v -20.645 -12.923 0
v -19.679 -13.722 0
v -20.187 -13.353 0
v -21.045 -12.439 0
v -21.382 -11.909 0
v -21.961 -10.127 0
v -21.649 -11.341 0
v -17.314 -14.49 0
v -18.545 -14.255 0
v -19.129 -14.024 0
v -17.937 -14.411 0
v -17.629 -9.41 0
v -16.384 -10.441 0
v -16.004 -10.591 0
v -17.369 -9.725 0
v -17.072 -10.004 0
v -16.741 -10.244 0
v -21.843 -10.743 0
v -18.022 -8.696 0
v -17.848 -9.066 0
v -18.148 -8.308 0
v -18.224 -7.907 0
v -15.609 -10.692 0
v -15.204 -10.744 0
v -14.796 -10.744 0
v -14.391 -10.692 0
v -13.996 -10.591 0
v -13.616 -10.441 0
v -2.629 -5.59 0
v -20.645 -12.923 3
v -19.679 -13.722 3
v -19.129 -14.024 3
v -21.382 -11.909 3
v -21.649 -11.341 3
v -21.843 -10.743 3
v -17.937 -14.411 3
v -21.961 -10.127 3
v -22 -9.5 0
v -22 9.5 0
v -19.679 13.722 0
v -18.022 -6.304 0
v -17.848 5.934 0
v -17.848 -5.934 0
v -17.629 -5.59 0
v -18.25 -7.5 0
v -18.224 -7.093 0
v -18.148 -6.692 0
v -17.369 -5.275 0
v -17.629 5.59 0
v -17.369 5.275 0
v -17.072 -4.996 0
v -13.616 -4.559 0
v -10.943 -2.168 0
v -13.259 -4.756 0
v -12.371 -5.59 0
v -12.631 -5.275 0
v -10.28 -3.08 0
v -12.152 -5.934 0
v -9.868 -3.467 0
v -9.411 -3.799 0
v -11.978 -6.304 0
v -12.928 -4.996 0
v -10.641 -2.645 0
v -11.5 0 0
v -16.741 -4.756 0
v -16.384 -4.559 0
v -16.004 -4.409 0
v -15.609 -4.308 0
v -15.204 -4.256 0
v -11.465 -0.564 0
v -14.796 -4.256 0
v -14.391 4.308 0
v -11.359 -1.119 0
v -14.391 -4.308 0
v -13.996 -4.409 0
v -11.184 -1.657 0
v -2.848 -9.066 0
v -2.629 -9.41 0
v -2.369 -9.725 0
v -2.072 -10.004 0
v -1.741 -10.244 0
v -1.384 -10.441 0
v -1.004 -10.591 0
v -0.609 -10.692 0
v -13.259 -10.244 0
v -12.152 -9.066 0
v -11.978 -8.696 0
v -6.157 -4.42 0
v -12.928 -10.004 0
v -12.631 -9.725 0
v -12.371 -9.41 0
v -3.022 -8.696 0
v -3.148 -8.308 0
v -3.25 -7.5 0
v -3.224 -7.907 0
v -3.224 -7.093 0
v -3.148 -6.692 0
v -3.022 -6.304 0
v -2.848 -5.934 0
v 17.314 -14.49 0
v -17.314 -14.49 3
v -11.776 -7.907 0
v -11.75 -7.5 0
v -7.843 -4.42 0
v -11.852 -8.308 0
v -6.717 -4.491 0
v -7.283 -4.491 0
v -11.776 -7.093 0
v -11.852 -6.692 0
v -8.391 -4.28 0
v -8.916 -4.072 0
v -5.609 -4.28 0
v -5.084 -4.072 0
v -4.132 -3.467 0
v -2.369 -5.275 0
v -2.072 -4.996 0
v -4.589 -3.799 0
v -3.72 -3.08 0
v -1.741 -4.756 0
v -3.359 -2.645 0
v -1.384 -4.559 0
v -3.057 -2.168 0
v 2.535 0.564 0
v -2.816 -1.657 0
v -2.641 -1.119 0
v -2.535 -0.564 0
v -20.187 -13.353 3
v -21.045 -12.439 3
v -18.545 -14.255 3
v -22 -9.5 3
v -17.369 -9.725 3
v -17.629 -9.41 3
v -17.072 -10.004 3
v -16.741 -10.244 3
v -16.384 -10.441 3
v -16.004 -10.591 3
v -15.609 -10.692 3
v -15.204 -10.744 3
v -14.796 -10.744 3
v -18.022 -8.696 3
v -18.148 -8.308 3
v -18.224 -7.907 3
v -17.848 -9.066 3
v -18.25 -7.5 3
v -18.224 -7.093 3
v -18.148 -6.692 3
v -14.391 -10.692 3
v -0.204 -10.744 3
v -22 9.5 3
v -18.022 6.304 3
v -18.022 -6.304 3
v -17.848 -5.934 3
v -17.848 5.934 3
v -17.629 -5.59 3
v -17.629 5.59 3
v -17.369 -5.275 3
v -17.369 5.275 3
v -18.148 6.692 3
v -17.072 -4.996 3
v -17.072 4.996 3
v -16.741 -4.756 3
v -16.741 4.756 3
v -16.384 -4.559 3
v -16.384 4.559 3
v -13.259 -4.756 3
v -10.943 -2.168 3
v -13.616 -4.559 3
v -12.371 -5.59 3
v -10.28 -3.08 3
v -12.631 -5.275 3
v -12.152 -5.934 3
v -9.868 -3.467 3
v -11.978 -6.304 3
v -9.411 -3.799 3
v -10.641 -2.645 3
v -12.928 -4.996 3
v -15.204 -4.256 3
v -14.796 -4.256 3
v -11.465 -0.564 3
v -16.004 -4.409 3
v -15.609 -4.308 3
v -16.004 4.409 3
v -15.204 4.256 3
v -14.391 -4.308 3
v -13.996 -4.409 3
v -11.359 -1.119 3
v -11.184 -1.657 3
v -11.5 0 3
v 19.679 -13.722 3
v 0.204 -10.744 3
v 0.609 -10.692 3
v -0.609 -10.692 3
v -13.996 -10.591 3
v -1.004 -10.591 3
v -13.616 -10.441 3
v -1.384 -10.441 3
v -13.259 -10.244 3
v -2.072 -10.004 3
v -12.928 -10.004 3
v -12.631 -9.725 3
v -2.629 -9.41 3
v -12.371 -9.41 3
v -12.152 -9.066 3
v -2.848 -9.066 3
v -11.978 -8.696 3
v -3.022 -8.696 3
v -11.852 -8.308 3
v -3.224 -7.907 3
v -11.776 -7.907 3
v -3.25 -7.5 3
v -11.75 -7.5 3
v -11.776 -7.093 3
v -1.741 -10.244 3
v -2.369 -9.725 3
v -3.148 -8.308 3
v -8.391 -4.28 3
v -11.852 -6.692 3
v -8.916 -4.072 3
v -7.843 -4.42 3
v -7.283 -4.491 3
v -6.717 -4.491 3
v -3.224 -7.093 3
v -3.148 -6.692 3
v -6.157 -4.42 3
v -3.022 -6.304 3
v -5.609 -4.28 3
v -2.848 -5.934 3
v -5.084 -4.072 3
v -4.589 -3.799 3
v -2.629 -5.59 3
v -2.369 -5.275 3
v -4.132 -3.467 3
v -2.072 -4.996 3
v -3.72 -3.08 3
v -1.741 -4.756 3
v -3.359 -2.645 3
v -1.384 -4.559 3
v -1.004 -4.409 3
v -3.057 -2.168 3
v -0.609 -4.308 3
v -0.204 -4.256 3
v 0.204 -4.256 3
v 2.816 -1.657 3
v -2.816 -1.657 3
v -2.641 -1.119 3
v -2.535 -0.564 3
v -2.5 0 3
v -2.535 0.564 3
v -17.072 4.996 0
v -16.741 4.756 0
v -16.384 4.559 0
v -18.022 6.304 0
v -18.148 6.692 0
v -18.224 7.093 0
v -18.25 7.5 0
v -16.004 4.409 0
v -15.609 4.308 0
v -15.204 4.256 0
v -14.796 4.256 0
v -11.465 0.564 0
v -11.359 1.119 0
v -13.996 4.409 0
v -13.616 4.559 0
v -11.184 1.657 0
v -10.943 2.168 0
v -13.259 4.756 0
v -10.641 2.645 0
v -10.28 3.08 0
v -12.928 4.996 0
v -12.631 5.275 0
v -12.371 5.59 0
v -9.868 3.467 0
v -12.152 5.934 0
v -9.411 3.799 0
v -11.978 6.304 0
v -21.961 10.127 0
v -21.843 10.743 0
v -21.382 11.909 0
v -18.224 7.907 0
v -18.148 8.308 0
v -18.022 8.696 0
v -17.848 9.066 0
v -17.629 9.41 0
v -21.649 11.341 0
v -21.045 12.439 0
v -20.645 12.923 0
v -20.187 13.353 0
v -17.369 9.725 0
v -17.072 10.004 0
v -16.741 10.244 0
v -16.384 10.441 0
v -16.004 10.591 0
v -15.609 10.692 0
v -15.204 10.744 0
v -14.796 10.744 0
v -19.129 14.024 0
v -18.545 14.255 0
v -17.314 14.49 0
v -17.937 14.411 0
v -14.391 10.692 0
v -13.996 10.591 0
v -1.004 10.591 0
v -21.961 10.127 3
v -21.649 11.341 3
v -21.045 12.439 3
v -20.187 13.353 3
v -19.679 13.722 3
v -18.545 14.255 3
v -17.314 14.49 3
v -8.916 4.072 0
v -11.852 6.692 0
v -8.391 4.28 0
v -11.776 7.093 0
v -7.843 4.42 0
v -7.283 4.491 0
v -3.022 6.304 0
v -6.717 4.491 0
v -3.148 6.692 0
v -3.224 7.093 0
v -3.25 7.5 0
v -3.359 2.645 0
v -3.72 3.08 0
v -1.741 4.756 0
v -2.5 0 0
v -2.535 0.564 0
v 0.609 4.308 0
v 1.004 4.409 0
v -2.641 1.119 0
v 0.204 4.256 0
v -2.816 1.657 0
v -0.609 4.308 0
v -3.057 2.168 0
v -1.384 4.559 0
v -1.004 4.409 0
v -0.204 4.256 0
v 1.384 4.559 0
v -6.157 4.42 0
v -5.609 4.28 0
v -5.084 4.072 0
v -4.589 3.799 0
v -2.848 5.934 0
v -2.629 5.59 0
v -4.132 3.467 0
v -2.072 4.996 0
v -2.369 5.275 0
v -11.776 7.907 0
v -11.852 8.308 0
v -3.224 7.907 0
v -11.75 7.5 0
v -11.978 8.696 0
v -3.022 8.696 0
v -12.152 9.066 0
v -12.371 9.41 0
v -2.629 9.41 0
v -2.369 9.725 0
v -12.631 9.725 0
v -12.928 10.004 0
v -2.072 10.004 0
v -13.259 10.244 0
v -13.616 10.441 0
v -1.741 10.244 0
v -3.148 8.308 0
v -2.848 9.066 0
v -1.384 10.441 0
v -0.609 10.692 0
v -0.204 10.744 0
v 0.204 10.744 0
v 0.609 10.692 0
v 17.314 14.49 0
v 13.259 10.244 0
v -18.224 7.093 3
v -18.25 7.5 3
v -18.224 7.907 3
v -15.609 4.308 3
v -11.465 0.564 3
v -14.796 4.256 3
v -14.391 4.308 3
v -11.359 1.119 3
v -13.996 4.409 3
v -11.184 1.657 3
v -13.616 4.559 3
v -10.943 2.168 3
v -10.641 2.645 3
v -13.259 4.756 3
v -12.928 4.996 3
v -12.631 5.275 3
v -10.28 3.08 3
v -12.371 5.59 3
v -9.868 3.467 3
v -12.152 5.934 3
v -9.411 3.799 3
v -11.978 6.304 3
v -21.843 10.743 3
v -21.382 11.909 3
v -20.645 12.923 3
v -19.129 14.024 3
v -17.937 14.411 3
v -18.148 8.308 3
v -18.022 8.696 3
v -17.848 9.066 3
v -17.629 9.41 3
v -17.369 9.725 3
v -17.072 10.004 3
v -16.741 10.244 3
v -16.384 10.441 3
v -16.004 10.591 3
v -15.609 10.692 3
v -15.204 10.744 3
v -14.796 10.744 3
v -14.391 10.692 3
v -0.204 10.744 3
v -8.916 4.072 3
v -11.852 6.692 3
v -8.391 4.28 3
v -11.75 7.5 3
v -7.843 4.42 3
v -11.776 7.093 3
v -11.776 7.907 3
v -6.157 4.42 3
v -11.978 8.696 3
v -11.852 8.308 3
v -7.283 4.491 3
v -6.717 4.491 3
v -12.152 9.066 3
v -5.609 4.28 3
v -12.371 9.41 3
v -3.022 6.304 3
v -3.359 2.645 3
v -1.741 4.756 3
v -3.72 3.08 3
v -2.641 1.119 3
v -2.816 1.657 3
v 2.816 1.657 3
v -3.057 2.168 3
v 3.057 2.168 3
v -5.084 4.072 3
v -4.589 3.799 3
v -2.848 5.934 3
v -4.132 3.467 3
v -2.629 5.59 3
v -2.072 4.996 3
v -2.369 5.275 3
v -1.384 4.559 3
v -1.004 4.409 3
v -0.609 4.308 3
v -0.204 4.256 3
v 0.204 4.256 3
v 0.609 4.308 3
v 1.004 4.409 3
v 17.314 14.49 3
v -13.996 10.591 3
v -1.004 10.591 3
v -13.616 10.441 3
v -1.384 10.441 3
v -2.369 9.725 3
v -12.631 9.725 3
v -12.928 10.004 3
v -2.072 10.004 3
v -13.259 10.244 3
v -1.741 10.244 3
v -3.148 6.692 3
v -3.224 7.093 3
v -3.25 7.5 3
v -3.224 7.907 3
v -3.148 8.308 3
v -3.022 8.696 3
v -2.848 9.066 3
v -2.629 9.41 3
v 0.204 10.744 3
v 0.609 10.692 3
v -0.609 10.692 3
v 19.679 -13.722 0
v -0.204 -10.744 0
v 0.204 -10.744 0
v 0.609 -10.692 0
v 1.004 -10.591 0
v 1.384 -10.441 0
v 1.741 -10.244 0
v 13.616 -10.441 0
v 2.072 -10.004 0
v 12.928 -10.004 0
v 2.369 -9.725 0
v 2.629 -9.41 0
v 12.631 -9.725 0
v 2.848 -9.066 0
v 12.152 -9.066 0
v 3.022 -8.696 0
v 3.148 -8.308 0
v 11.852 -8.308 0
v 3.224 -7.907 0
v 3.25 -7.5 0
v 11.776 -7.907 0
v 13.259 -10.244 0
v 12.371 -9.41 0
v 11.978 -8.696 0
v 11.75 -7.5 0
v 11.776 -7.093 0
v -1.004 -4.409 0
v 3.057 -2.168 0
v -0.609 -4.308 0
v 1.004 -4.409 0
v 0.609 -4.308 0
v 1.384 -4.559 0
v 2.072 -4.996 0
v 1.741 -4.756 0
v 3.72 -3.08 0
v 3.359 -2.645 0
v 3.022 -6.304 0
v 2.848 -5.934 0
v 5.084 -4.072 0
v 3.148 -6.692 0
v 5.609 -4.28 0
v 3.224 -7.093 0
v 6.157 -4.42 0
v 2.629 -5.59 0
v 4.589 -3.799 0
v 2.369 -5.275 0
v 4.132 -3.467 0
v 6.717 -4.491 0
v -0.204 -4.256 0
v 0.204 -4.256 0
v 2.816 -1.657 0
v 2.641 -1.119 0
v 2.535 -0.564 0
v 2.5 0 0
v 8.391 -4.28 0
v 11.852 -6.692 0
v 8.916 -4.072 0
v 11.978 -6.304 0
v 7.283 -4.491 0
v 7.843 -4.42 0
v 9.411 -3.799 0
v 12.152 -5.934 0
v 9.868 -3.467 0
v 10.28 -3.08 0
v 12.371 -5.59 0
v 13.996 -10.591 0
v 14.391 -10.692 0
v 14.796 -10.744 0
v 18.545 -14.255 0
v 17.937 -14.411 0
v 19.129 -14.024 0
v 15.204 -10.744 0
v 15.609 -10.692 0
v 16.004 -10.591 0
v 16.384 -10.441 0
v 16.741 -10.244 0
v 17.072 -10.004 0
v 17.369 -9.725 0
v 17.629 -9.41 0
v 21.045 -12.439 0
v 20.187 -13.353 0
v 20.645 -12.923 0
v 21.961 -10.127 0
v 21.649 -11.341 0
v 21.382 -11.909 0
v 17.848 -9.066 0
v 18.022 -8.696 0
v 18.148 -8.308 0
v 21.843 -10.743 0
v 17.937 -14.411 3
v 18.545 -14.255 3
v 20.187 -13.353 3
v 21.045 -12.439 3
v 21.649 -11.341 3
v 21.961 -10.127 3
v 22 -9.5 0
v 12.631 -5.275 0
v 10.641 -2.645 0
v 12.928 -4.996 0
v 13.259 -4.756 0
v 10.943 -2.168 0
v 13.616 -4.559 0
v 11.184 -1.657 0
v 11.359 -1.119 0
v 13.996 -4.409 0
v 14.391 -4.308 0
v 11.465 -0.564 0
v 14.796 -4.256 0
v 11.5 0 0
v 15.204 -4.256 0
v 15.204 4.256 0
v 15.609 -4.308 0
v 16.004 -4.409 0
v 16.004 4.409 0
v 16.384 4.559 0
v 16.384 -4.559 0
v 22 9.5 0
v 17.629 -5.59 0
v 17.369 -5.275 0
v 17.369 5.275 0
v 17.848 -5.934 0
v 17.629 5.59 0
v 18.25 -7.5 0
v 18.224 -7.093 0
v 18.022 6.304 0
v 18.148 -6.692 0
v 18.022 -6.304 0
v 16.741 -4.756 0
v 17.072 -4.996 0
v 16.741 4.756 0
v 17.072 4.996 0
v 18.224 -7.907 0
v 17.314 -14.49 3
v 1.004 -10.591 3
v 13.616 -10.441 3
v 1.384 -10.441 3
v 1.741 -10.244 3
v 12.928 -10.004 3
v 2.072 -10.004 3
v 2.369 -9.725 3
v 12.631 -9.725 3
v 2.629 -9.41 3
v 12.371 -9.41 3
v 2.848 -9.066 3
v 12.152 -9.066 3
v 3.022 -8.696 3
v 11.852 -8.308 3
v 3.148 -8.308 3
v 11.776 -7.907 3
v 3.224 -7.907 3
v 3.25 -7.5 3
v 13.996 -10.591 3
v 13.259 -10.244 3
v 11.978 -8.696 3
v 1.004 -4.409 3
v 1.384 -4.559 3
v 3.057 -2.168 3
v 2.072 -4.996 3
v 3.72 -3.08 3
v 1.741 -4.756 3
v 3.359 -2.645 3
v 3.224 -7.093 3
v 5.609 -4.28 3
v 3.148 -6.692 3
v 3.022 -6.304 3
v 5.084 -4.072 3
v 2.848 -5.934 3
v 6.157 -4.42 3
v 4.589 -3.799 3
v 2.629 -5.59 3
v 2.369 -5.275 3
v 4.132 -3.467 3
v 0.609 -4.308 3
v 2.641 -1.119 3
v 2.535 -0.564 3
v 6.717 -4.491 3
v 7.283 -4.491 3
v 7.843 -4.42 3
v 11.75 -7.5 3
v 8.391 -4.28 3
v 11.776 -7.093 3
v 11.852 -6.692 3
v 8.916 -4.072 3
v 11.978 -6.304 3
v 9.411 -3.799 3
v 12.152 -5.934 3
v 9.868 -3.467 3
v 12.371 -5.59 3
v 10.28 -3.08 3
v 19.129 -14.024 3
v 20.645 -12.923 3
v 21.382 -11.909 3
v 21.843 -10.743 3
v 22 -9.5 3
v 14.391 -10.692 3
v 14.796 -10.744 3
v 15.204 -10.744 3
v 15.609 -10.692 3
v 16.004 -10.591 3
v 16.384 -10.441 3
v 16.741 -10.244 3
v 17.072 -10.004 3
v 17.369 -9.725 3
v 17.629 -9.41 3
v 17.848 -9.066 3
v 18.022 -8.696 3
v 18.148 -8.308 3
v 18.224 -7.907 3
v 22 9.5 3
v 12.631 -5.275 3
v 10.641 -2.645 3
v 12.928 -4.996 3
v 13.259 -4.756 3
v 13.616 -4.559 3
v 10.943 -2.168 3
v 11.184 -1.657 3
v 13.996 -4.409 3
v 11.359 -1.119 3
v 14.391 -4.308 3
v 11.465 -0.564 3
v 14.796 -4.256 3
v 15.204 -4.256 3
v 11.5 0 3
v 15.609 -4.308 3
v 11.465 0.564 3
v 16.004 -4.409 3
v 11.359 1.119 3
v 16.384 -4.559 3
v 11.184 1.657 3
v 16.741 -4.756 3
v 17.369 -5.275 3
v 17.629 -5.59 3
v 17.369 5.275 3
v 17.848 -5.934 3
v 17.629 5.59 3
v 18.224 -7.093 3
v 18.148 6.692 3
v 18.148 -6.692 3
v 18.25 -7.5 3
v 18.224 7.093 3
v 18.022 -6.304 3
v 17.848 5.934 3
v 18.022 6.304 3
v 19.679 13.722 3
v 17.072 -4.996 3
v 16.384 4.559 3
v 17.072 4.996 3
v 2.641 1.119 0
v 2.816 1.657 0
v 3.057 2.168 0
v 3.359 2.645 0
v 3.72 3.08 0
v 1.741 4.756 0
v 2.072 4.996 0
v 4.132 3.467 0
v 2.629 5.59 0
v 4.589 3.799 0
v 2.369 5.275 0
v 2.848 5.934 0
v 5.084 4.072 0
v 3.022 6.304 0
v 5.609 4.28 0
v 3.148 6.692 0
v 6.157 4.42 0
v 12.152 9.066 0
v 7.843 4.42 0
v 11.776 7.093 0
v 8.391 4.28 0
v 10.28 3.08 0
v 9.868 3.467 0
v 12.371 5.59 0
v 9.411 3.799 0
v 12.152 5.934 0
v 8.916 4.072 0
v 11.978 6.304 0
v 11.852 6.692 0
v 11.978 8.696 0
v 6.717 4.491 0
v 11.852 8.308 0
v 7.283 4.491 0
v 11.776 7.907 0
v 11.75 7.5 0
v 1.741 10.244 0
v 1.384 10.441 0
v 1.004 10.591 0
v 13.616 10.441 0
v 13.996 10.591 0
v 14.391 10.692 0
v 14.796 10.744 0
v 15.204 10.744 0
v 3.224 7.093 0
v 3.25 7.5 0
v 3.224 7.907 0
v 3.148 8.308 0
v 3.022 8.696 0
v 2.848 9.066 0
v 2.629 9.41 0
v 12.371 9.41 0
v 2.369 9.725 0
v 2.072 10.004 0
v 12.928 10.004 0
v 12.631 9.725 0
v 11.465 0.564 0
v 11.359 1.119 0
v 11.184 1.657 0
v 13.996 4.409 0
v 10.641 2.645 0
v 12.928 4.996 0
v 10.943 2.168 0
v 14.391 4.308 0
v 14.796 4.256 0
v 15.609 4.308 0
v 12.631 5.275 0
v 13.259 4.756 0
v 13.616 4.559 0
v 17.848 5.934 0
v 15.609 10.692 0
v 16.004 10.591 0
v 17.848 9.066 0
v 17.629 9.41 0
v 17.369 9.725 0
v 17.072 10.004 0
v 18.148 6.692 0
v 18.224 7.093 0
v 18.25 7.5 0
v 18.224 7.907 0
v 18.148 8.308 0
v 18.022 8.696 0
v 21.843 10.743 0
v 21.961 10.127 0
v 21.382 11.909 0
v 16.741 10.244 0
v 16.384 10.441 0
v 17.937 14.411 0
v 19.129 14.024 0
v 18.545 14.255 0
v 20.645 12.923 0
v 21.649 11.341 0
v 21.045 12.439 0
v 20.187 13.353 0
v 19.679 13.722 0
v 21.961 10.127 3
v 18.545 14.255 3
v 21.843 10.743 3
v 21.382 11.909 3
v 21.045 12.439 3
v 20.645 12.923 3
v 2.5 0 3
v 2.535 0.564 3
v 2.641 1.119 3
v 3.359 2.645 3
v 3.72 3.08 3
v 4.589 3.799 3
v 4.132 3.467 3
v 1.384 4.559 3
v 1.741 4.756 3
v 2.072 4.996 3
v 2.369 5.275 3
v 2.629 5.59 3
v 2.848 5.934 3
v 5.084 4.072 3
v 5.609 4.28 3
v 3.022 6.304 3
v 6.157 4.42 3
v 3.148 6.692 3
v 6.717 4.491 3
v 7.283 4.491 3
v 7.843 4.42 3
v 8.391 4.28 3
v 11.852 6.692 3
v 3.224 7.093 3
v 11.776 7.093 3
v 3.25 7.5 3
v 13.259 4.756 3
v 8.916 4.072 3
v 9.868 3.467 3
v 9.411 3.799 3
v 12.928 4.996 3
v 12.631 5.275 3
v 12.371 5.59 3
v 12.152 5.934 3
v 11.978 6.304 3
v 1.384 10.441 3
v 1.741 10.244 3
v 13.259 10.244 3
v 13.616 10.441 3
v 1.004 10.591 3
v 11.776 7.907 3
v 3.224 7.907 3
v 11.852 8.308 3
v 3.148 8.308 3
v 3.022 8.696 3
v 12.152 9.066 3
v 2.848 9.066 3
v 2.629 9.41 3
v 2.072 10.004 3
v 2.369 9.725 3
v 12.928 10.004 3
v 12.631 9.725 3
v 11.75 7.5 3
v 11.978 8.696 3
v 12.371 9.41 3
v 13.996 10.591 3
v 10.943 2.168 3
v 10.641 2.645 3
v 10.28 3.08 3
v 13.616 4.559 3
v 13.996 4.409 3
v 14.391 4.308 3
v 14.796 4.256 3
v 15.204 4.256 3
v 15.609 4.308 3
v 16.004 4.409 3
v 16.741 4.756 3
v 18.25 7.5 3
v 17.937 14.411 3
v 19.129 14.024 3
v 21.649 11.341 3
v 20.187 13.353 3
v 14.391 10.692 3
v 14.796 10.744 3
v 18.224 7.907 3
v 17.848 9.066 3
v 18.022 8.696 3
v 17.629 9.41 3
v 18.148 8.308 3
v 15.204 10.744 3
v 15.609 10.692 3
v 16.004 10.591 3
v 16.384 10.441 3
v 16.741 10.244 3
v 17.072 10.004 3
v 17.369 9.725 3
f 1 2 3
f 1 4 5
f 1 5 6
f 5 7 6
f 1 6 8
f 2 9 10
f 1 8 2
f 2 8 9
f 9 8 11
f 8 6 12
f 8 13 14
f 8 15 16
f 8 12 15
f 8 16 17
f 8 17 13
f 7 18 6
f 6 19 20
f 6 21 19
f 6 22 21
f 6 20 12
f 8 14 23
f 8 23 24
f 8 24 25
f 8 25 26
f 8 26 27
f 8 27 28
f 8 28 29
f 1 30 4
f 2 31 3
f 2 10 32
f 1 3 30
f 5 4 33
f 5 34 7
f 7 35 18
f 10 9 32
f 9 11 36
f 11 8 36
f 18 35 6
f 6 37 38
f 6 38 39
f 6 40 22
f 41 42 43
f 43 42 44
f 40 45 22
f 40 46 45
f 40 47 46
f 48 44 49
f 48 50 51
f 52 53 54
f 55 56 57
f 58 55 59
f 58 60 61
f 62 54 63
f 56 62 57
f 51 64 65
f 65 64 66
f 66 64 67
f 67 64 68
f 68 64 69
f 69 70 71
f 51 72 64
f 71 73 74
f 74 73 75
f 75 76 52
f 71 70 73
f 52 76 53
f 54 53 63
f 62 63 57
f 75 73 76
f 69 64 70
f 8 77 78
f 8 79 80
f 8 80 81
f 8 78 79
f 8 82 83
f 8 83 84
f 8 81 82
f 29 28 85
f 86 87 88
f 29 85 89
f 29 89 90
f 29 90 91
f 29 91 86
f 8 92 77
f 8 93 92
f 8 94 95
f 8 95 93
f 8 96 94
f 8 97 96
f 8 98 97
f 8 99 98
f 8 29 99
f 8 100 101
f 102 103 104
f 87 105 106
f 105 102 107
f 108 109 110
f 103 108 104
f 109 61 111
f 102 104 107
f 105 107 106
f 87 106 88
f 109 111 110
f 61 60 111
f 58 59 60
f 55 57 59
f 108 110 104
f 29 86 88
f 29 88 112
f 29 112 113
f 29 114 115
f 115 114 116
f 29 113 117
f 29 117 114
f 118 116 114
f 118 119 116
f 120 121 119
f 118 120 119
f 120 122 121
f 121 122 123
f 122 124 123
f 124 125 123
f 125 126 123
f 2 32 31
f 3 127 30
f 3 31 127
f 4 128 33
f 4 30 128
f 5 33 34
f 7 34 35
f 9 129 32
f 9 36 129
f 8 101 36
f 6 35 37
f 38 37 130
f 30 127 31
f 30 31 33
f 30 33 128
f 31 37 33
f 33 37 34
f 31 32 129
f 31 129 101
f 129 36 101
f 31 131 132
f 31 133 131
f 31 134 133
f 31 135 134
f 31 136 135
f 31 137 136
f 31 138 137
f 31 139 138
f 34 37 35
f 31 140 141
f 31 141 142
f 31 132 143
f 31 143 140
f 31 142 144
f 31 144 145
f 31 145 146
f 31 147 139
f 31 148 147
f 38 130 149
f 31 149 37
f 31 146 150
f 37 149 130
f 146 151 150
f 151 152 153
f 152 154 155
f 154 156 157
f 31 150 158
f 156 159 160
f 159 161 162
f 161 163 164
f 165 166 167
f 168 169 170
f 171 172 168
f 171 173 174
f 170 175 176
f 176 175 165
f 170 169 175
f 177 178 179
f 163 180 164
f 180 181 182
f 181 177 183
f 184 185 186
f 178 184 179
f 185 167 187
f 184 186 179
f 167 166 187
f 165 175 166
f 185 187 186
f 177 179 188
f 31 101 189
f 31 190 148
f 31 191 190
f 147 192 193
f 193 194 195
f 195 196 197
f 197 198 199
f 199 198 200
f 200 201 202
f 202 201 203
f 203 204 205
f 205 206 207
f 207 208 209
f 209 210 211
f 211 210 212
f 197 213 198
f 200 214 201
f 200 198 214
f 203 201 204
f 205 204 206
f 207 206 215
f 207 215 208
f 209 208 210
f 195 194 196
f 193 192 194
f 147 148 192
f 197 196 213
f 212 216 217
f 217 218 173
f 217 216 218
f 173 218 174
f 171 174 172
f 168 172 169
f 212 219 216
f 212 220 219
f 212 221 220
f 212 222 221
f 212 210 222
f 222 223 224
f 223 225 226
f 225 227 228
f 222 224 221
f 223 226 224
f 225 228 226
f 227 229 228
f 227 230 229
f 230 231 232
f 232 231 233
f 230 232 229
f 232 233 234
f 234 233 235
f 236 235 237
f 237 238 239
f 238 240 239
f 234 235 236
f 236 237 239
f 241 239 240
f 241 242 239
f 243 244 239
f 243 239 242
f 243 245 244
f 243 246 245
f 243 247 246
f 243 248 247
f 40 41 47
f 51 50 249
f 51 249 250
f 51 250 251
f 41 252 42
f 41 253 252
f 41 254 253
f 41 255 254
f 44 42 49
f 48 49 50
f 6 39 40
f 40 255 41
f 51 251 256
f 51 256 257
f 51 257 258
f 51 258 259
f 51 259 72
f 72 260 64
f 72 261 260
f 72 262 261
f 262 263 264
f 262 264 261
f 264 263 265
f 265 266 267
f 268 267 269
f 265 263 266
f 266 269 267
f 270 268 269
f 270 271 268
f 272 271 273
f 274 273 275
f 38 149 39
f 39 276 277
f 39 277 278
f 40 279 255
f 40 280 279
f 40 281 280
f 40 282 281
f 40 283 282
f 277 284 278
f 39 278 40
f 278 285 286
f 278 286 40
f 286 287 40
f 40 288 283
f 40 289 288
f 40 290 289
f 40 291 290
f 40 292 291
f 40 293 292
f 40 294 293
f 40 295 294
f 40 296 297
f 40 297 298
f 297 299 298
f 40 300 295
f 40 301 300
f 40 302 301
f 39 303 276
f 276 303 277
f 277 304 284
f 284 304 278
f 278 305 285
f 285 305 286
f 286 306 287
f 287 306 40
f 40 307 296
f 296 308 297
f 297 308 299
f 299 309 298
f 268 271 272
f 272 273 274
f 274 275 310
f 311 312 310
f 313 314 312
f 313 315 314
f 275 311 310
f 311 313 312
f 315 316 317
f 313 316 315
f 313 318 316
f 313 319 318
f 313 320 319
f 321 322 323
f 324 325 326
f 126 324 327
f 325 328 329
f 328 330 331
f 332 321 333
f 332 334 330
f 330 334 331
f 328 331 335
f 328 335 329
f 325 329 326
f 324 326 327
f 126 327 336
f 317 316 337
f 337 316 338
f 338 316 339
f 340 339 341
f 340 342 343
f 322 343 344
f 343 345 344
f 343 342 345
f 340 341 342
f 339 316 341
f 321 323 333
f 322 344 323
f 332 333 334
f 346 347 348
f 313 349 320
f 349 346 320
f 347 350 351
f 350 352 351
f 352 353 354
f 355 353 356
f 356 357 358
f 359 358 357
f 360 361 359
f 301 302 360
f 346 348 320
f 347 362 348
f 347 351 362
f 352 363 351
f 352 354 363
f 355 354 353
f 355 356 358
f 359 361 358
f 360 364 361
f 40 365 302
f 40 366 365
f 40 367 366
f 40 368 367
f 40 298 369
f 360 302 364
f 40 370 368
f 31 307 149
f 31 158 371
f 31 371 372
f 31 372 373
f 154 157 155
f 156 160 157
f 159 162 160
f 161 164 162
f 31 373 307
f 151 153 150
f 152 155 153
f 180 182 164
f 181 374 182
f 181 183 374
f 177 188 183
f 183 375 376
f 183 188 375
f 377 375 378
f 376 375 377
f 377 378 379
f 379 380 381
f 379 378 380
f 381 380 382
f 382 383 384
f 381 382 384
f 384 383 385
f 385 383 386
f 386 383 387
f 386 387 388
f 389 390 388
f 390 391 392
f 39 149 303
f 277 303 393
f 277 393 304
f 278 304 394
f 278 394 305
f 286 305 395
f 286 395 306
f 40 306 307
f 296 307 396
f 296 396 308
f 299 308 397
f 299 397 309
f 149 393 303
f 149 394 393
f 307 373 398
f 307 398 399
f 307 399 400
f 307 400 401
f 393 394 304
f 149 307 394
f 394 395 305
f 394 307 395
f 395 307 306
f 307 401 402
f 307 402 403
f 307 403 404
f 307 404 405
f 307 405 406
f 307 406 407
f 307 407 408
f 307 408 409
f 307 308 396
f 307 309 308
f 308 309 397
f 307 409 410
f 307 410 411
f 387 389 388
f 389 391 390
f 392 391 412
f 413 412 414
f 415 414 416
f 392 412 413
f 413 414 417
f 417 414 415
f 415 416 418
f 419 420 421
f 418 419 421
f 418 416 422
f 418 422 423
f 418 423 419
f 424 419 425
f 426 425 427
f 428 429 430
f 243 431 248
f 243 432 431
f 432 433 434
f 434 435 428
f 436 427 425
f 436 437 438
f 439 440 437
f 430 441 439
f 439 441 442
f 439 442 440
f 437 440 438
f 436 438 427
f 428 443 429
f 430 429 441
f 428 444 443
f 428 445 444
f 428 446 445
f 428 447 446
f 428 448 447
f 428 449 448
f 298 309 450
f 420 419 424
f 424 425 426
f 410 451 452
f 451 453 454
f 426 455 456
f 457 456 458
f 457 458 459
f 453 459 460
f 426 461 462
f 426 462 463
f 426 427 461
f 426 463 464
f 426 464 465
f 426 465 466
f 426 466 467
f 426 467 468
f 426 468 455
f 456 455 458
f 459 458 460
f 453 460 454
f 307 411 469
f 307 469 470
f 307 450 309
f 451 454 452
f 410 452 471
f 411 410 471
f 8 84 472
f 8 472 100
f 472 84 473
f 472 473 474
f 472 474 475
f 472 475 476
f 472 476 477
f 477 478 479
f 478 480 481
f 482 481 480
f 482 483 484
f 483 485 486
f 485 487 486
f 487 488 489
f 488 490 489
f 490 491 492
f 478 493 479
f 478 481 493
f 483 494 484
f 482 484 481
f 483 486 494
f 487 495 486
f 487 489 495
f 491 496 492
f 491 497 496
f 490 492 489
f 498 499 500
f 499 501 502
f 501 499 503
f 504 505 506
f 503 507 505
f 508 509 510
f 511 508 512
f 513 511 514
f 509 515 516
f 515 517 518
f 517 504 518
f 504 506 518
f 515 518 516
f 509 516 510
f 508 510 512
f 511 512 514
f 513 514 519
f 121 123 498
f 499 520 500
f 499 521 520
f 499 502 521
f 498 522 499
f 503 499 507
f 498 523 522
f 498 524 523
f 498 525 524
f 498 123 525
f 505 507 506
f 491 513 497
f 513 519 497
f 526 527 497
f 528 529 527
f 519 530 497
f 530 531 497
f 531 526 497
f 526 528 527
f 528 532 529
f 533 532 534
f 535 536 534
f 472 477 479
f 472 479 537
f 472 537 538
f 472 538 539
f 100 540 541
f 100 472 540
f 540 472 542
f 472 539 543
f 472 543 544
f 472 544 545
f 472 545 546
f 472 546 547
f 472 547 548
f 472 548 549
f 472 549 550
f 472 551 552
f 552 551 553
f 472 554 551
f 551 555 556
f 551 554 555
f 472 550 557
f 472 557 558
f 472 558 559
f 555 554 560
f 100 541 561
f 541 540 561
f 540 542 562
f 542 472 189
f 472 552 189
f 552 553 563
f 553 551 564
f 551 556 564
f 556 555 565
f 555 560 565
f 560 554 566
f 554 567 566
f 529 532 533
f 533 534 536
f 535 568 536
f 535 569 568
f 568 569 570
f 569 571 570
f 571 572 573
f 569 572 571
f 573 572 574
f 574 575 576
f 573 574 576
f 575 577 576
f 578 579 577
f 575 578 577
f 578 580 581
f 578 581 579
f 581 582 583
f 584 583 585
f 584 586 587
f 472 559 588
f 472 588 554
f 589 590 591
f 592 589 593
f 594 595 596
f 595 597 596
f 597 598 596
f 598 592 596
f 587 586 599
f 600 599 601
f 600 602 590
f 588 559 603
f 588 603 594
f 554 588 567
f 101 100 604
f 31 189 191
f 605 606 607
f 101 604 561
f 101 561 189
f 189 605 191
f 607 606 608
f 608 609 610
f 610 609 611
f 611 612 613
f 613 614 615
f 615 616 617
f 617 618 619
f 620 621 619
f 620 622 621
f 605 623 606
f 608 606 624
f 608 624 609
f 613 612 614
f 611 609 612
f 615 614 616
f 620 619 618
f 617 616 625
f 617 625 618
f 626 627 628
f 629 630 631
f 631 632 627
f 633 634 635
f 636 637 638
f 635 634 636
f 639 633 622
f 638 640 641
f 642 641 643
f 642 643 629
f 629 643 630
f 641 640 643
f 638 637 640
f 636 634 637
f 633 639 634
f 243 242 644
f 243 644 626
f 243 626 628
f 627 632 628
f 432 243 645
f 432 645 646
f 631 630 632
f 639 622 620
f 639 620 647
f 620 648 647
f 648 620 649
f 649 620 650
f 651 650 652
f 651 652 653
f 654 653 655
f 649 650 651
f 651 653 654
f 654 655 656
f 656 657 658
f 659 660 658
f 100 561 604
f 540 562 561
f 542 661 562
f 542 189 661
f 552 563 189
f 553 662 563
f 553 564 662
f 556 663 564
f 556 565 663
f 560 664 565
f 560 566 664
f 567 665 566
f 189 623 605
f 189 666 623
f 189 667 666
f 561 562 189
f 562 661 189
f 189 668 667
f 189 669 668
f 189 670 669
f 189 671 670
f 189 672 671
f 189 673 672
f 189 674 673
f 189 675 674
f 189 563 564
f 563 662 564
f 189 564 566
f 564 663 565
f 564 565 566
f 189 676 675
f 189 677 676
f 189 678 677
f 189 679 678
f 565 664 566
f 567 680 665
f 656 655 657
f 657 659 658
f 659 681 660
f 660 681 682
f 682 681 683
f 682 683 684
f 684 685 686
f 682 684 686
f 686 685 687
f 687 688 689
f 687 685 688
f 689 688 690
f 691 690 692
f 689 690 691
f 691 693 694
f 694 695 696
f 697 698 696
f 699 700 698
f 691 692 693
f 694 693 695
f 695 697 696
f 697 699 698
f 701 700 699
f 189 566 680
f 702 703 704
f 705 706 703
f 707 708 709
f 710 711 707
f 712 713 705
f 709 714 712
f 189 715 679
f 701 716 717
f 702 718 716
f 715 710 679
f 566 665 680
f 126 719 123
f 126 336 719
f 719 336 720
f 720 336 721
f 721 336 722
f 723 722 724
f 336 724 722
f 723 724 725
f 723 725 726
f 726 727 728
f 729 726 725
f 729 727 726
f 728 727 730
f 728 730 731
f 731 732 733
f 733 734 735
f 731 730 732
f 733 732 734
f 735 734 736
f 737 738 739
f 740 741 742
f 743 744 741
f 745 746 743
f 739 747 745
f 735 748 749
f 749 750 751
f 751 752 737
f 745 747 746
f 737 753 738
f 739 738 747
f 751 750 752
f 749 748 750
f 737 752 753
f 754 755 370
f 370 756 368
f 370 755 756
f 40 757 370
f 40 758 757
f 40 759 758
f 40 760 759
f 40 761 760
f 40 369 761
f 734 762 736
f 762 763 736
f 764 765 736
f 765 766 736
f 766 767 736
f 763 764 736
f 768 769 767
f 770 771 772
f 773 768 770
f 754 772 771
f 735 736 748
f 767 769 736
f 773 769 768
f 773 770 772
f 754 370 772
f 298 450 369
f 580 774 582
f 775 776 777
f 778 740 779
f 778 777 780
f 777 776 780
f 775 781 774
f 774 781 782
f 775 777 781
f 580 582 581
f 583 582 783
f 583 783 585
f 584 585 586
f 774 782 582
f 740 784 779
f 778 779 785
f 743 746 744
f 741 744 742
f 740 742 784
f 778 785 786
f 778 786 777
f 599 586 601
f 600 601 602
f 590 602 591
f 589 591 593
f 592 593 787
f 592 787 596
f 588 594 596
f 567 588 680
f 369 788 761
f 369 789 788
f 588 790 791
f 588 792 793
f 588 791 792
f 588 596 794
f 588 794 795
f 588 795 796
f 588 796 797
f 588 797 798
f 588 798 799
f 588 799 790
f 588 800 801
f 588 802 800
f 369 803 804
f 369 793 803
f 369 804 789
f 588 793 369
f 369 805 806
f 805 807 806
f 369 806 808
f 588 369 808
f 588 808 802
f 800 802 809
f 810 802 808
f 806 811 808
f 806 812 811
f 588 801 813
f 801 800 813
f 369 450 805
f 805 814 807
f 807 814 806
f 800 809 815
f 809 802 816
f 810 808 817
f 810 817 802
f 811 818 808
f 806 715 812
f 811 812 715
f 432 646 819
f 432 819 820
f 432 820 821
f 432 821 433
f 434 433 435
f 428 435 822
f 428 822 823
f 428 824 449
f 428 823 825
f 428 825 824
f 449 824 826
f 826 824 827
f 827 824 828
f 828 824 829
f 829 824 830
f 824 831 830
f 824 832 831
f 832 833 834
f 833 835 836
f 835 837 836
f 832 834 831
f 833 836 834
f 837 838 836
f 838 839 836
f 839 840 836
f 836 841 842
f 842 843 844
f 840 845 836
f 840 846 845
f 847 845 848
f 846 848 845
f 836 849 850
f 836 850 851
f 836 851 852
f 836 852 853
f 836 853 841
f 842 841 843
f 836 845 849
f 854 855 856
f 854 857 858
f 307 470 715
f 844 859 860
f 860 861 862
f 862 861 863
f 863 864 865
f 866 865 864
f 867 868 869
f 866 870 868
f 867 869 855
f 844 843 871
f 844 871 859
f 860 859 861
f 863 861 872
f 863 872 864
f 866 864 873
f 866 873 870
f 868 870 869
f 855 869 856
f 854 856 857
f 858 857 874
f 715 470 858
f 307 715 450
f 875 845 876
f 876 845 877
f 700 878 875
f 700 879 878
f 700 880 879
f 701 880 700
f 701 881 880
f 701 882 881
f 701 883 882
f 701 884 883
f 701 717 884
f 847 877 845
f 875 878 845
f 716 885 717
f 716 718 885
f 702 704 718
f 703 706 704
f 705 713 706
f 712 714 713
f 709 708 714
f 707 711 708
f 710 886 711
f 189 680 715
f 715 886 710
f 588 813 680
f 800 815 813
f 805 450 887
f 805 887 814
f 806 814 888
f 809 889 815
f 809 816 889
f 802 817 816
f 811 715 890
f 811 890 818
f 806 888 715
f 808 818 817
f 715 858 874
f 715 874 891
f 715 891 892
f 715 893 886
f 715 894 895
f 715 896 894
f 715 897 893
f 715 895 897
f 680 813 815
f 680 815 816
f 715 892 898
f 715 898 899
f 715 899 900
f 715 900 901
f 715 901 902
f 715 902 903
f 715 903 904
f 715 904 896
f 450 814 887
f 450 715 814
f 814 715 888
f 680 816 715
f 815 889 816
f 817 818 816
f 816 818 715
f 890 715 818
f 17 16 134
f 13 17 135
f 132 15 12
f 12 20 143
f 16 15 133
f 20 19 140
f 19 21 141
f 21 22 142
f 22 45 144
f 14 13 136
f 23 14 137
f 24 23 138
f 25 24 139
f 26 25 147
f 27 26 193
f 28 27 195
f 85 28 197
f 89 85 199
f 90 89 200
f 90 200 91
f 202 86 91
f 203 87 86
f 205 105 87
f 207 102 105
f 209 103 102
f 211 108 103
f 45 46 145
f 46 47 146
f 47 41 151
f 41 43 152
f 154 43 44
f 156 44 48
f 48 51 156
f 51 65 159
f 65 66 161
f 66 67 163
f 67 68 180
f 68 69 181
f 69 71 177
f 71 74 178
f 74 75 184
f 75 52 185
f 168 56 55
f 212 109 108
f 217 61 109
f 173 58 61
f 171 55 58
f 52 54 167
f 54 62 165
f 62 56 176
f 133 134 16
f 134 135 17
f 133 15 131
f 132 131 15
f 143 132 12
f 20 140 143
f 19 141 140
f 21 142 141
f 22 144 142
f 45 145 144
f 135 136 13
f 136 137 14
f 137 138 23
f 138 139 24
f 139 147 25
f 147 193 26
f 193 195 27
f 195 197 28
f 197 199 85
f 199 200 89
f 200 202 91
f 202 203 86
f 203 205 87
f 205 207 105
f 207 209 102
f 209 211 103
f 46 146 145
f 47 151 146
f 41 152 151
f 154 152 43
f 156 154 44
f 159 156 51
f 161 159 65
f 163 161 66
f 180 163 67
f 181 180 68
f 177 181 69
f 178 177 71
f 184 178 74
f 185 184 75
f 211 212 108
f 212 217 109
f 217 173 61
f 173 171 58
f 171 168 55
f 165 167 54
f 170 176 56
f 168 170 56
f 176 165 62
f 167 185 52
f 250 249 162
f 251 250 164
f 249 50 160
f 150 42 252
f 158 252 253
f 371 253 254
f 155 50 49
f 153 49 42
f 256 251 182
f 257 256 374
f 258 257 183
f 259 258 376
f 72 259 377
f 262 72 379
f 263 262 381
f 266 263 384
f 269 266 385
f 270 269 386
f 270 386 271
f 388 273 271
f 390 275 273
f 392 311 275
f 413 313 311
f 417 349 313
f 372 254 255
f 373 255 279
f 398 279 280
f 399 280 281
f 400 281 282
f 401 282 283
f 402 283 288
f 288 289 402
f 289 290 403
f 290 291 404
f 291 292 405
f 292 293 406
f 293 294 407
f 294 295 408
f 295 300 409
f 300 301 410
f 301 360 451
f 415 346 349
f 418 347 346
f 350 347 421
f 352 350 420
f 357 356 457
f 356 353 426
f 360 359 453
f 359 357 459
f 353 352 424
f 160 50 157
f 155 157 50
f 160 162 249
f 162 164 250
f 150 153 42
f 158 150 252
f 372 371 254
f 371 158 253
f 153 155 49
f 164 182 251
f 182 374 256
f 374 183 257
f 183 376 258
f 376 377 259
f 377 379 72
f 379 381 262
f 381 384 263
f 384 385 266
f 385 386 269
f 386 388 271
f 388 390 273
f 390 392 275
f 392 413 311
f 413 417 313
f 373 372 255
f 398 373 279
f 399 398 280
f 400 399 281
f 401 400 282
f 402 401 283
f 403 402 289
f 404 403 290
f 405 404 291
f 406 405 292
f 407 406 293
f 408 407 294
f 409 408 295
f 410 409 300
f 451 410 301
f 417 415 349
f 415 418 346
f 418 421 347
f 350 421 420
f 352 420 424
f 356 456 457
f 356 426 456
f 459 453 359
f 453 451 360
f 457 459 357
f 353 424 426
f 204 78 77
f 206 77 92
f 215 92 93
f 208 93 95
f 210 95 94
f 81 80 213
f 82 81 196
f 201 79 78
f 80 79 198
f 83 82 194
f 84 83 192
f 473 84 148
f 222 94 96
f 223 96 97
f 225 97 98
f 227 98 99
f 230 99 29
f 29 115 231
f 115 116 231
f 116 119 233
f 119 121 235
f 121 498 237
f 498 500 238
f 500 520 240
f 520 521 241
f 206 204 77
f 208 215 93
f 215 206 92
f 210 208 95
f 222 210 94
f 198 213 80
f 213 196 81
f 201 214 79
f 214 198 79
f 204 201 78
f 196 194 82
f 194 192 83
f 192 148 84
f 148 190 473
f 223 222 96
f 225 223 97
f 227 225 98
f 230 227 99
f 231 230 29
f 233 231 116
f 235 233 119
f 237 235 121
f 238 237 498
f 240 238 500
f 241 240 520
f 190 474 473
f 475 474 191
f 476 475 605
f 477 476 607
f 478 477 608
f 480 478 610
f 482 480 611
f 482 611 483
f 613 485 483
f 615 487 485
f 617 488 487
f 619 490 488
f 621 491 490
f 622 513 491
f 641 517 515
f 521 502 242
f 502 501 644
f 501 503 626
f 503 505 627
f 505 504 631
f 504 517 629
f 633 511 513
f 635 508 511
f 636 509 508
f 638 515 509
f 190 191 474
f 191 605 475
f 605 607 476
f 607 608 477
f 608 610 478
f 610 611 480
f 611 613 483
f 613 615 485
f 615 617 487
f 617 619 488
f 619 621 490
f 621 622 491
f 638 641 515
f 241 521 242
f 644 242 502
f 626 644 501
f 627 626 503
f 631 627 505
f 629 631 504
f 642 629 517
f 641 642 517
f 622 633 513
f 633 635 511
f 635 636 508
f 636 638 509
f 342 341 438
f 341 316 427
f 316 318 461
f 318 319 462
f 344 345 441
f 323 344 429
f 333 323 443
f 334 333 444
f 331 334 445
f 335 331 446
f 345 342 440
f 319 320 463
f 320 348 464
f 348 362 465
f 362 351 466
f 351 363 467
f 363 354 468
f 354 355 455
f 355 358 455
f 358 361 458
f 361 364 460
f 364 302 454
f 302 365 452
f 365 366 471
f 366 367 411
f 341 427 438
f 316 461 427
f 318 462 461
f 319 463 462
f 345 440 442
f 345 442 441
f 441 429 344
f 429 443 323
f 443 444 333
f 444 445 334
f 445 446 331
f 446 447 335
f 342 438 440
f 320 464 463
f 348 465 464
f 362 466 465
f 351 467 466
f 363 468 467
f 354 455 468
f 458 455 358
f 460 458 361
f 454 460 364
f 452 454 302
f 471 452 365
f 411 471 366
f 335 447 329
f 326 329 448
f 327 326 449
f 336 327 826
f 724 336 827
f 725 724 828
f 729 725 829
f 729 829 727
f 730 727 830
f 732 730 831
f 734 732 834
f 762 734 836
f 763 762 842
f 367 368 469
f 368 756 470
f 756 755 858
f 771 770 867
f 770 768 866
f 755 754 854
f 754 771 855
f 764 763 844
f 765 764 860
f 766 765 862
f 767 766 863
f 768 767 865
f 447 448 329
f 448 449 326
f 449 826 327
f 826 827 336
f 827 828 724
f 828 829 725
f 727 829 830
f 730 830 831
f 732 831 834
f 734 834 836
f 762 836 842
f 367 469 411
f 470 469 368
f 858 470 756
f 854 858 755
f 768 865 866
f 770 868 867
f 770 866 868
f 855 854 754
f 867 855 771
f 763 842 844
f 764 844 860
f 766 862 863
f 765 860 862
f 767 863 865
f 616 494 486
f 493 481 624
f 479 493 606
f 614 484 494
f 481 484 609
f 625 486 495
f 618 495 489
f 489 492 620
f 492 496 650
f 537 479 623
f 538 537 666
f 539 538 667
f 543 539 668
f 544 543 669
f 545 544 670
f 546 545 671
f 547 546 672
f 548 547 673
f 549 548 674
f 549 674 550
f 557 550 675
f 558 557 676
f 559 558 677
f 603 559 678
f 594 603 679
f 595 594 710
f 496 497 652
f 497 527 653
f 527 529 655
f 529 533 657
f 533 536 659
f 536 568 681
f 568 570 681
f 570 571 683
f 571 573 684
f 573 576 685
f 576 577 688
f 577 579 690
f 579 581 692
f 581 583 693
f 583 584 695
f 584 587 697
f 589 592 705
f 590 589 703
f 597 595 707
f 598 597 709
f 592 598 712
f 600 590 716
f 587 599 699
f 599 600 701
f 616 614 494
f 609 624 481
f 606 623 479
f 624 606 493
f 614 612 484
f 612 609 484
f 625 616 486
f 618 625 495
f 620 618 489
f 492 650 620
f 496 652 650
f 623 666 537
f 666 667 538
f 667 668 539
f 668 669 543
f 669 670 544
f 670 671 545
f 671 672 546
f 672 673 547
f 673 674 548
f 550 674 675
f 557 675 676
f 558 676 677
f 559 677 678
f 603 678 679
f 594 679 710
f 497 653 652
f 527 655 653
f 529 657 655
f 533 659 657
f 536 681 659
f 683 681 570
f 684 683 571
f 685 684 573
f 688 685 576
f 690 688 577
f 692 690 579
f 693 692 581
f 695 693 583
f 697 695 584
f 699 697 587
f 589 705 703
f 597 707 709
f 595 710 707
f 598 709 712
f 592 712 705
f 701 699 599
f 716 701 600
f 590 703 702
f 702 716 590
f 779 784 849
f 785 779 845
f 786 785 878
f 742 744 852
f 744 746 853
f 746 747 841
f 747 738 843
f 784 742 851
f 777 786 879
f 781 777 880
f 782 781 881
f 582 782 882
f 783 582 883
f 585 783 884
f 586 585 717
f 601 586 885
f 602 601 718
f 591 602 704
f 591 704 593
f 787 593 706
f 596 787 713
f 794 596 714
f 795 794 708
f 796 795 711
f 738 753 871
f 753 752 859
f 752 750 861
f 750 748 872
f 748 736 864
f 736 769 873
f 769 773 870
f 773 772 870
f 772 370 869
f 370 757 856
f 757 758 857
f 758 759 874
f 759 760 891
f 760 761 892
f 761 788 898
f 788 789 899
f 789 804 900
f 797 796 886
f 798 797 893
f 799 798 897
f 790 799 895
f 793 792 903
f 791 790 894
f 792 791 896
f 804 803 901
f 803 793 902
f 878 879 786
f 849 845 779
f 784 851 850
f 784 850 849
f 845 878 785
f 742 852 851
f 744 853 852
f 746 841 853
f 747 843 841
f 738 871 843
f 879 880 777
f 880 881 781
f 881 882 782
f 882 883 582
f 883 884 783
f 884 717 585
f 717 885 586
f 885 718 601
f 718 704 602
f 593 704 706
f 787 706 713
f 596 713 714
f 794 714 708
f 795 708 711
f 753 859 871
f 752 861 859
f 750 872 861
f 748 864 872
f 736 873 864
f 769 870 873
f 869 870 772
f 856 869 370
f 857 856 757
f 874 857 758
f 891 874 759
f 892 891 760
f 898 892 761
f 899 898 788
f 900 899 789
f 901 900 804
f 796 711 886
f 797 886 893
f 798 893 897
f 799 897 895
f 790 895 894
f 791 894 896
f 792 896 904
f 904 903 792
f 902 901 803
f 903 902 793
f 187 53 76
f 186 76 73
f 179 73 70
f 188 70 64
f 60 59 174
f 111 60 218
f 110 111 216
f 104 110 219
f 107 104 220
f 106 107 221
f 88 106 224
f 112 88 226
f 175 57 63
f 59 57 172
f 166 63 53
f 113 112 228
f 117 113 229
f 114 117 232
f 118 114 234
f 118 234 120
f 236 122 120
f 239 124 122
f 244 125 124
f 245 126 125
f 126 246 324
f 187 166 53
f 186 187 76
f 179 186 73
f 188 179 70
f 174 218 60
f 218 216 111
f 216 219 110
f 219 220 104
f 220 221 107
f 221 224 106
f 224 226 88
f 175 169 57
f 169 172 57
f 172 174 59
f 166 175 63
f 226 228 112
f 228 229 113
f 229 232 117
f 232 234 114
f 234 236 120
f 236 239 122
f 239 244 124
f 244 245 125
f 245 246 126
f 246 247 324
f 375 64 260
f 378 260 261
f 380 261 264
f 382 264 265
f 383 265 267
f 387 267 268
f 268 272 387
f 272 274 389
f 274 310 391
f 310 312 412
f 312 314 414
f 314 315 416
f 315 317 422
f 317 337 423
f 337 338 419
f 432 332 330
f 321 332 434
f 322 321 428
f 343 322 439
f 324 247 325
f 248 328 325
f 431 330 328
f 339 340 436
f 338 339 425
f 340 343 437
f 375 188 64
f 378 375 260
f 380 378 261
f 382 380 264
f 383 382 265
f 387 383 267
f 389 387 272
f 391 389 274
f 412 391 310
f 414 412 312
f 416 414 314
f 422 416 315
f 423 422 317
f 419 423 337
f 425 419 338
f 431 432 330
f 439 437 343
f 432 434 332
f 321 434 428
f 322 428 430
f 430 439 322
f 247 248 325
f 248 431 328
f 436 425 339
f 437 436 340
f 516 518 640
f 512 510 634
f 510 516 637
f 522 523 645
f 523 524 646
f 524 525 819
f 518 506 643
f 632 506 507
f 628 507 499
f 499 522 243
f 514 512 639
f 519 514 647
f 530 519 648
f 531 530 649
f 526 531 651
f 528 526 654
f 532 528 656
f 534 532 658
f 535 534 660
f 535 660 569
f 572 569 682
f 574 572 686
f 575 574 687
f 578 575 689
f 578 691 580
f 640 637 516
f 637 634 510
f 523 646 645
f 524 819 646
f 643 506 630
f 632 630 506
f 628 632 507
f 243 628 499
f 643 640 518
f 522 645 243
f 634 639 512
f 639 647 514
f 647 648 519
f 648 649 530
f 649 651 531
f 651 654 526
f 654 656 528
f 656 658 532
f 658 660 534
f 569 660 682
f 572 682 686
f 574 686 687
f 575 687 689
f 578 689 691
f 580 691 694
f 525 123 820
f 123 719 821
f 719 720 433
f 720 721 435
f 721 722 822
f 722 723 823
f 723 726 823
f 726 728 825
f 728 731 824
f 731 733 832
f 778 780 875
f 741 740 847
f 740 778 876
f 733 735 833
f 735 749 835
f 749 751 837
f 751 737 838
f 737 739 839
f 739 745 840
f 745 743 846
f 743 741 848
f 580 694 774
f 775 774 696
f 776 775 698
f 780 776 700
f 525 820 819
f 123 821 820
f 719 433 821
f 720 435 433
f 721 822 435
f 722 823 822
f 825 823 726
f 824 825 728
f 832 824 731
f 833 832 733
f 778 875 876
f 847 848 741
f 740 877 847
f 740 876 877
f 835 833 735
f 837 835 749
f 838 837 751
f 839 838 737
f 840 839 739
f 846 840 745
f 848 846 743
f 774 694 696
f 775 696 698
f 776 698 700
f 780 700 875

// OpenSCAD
$fn = 50;

difference() {
	union() {
		hull() {
			translate(v = [-17.0, 9.5, 0]) {
				cylinder(h = 3, r = 5);
			}
			translate(v = [17.0, 9.5, 0]) {
				cylinder(h = 3, r = 5);
			}
			translate(v = [-17.0, -9.5, 0]) {
				cylinder(h = 3, r = 5);
			}
			translate(v = [17.0, -9.5, 0]) {
				cylinder(h = 3, r = 5);
			}
		}
	}
	union() {
		translate(v = [-15.0, -7.5, 0]) {
			cylinder(h = 3, r = 3.25);
		}
		translate(v = [-15.0, 7.5, 0]) {
			cylinder(h = 3, r = 3.25);
		}
		translate(v = [0.0, -7.5, 0]) {
			cylinder(h = 3, r = 3.25);
		}
		translate(v = [0.0, 7.5, 0]) {
			cylinder(h = 3, r = 3.25);
		}
		translate(v = [15.0, -7.5, 0]) {
			cylinder(h = 3, r = 3.25);
		}
		translate(v = [15.0, 7.5, 0]) {
			cylinder(h = 3, r = 3.25);
		}
		translate(v = [-7.0, 0, 0.0]) {
			cylinder(h = 3, r = 4.5);
		}
		translate(v = [7.0, 0, 0.0]) {
			cylinder(h = 3, r = 4.5);
		}
	}
}
